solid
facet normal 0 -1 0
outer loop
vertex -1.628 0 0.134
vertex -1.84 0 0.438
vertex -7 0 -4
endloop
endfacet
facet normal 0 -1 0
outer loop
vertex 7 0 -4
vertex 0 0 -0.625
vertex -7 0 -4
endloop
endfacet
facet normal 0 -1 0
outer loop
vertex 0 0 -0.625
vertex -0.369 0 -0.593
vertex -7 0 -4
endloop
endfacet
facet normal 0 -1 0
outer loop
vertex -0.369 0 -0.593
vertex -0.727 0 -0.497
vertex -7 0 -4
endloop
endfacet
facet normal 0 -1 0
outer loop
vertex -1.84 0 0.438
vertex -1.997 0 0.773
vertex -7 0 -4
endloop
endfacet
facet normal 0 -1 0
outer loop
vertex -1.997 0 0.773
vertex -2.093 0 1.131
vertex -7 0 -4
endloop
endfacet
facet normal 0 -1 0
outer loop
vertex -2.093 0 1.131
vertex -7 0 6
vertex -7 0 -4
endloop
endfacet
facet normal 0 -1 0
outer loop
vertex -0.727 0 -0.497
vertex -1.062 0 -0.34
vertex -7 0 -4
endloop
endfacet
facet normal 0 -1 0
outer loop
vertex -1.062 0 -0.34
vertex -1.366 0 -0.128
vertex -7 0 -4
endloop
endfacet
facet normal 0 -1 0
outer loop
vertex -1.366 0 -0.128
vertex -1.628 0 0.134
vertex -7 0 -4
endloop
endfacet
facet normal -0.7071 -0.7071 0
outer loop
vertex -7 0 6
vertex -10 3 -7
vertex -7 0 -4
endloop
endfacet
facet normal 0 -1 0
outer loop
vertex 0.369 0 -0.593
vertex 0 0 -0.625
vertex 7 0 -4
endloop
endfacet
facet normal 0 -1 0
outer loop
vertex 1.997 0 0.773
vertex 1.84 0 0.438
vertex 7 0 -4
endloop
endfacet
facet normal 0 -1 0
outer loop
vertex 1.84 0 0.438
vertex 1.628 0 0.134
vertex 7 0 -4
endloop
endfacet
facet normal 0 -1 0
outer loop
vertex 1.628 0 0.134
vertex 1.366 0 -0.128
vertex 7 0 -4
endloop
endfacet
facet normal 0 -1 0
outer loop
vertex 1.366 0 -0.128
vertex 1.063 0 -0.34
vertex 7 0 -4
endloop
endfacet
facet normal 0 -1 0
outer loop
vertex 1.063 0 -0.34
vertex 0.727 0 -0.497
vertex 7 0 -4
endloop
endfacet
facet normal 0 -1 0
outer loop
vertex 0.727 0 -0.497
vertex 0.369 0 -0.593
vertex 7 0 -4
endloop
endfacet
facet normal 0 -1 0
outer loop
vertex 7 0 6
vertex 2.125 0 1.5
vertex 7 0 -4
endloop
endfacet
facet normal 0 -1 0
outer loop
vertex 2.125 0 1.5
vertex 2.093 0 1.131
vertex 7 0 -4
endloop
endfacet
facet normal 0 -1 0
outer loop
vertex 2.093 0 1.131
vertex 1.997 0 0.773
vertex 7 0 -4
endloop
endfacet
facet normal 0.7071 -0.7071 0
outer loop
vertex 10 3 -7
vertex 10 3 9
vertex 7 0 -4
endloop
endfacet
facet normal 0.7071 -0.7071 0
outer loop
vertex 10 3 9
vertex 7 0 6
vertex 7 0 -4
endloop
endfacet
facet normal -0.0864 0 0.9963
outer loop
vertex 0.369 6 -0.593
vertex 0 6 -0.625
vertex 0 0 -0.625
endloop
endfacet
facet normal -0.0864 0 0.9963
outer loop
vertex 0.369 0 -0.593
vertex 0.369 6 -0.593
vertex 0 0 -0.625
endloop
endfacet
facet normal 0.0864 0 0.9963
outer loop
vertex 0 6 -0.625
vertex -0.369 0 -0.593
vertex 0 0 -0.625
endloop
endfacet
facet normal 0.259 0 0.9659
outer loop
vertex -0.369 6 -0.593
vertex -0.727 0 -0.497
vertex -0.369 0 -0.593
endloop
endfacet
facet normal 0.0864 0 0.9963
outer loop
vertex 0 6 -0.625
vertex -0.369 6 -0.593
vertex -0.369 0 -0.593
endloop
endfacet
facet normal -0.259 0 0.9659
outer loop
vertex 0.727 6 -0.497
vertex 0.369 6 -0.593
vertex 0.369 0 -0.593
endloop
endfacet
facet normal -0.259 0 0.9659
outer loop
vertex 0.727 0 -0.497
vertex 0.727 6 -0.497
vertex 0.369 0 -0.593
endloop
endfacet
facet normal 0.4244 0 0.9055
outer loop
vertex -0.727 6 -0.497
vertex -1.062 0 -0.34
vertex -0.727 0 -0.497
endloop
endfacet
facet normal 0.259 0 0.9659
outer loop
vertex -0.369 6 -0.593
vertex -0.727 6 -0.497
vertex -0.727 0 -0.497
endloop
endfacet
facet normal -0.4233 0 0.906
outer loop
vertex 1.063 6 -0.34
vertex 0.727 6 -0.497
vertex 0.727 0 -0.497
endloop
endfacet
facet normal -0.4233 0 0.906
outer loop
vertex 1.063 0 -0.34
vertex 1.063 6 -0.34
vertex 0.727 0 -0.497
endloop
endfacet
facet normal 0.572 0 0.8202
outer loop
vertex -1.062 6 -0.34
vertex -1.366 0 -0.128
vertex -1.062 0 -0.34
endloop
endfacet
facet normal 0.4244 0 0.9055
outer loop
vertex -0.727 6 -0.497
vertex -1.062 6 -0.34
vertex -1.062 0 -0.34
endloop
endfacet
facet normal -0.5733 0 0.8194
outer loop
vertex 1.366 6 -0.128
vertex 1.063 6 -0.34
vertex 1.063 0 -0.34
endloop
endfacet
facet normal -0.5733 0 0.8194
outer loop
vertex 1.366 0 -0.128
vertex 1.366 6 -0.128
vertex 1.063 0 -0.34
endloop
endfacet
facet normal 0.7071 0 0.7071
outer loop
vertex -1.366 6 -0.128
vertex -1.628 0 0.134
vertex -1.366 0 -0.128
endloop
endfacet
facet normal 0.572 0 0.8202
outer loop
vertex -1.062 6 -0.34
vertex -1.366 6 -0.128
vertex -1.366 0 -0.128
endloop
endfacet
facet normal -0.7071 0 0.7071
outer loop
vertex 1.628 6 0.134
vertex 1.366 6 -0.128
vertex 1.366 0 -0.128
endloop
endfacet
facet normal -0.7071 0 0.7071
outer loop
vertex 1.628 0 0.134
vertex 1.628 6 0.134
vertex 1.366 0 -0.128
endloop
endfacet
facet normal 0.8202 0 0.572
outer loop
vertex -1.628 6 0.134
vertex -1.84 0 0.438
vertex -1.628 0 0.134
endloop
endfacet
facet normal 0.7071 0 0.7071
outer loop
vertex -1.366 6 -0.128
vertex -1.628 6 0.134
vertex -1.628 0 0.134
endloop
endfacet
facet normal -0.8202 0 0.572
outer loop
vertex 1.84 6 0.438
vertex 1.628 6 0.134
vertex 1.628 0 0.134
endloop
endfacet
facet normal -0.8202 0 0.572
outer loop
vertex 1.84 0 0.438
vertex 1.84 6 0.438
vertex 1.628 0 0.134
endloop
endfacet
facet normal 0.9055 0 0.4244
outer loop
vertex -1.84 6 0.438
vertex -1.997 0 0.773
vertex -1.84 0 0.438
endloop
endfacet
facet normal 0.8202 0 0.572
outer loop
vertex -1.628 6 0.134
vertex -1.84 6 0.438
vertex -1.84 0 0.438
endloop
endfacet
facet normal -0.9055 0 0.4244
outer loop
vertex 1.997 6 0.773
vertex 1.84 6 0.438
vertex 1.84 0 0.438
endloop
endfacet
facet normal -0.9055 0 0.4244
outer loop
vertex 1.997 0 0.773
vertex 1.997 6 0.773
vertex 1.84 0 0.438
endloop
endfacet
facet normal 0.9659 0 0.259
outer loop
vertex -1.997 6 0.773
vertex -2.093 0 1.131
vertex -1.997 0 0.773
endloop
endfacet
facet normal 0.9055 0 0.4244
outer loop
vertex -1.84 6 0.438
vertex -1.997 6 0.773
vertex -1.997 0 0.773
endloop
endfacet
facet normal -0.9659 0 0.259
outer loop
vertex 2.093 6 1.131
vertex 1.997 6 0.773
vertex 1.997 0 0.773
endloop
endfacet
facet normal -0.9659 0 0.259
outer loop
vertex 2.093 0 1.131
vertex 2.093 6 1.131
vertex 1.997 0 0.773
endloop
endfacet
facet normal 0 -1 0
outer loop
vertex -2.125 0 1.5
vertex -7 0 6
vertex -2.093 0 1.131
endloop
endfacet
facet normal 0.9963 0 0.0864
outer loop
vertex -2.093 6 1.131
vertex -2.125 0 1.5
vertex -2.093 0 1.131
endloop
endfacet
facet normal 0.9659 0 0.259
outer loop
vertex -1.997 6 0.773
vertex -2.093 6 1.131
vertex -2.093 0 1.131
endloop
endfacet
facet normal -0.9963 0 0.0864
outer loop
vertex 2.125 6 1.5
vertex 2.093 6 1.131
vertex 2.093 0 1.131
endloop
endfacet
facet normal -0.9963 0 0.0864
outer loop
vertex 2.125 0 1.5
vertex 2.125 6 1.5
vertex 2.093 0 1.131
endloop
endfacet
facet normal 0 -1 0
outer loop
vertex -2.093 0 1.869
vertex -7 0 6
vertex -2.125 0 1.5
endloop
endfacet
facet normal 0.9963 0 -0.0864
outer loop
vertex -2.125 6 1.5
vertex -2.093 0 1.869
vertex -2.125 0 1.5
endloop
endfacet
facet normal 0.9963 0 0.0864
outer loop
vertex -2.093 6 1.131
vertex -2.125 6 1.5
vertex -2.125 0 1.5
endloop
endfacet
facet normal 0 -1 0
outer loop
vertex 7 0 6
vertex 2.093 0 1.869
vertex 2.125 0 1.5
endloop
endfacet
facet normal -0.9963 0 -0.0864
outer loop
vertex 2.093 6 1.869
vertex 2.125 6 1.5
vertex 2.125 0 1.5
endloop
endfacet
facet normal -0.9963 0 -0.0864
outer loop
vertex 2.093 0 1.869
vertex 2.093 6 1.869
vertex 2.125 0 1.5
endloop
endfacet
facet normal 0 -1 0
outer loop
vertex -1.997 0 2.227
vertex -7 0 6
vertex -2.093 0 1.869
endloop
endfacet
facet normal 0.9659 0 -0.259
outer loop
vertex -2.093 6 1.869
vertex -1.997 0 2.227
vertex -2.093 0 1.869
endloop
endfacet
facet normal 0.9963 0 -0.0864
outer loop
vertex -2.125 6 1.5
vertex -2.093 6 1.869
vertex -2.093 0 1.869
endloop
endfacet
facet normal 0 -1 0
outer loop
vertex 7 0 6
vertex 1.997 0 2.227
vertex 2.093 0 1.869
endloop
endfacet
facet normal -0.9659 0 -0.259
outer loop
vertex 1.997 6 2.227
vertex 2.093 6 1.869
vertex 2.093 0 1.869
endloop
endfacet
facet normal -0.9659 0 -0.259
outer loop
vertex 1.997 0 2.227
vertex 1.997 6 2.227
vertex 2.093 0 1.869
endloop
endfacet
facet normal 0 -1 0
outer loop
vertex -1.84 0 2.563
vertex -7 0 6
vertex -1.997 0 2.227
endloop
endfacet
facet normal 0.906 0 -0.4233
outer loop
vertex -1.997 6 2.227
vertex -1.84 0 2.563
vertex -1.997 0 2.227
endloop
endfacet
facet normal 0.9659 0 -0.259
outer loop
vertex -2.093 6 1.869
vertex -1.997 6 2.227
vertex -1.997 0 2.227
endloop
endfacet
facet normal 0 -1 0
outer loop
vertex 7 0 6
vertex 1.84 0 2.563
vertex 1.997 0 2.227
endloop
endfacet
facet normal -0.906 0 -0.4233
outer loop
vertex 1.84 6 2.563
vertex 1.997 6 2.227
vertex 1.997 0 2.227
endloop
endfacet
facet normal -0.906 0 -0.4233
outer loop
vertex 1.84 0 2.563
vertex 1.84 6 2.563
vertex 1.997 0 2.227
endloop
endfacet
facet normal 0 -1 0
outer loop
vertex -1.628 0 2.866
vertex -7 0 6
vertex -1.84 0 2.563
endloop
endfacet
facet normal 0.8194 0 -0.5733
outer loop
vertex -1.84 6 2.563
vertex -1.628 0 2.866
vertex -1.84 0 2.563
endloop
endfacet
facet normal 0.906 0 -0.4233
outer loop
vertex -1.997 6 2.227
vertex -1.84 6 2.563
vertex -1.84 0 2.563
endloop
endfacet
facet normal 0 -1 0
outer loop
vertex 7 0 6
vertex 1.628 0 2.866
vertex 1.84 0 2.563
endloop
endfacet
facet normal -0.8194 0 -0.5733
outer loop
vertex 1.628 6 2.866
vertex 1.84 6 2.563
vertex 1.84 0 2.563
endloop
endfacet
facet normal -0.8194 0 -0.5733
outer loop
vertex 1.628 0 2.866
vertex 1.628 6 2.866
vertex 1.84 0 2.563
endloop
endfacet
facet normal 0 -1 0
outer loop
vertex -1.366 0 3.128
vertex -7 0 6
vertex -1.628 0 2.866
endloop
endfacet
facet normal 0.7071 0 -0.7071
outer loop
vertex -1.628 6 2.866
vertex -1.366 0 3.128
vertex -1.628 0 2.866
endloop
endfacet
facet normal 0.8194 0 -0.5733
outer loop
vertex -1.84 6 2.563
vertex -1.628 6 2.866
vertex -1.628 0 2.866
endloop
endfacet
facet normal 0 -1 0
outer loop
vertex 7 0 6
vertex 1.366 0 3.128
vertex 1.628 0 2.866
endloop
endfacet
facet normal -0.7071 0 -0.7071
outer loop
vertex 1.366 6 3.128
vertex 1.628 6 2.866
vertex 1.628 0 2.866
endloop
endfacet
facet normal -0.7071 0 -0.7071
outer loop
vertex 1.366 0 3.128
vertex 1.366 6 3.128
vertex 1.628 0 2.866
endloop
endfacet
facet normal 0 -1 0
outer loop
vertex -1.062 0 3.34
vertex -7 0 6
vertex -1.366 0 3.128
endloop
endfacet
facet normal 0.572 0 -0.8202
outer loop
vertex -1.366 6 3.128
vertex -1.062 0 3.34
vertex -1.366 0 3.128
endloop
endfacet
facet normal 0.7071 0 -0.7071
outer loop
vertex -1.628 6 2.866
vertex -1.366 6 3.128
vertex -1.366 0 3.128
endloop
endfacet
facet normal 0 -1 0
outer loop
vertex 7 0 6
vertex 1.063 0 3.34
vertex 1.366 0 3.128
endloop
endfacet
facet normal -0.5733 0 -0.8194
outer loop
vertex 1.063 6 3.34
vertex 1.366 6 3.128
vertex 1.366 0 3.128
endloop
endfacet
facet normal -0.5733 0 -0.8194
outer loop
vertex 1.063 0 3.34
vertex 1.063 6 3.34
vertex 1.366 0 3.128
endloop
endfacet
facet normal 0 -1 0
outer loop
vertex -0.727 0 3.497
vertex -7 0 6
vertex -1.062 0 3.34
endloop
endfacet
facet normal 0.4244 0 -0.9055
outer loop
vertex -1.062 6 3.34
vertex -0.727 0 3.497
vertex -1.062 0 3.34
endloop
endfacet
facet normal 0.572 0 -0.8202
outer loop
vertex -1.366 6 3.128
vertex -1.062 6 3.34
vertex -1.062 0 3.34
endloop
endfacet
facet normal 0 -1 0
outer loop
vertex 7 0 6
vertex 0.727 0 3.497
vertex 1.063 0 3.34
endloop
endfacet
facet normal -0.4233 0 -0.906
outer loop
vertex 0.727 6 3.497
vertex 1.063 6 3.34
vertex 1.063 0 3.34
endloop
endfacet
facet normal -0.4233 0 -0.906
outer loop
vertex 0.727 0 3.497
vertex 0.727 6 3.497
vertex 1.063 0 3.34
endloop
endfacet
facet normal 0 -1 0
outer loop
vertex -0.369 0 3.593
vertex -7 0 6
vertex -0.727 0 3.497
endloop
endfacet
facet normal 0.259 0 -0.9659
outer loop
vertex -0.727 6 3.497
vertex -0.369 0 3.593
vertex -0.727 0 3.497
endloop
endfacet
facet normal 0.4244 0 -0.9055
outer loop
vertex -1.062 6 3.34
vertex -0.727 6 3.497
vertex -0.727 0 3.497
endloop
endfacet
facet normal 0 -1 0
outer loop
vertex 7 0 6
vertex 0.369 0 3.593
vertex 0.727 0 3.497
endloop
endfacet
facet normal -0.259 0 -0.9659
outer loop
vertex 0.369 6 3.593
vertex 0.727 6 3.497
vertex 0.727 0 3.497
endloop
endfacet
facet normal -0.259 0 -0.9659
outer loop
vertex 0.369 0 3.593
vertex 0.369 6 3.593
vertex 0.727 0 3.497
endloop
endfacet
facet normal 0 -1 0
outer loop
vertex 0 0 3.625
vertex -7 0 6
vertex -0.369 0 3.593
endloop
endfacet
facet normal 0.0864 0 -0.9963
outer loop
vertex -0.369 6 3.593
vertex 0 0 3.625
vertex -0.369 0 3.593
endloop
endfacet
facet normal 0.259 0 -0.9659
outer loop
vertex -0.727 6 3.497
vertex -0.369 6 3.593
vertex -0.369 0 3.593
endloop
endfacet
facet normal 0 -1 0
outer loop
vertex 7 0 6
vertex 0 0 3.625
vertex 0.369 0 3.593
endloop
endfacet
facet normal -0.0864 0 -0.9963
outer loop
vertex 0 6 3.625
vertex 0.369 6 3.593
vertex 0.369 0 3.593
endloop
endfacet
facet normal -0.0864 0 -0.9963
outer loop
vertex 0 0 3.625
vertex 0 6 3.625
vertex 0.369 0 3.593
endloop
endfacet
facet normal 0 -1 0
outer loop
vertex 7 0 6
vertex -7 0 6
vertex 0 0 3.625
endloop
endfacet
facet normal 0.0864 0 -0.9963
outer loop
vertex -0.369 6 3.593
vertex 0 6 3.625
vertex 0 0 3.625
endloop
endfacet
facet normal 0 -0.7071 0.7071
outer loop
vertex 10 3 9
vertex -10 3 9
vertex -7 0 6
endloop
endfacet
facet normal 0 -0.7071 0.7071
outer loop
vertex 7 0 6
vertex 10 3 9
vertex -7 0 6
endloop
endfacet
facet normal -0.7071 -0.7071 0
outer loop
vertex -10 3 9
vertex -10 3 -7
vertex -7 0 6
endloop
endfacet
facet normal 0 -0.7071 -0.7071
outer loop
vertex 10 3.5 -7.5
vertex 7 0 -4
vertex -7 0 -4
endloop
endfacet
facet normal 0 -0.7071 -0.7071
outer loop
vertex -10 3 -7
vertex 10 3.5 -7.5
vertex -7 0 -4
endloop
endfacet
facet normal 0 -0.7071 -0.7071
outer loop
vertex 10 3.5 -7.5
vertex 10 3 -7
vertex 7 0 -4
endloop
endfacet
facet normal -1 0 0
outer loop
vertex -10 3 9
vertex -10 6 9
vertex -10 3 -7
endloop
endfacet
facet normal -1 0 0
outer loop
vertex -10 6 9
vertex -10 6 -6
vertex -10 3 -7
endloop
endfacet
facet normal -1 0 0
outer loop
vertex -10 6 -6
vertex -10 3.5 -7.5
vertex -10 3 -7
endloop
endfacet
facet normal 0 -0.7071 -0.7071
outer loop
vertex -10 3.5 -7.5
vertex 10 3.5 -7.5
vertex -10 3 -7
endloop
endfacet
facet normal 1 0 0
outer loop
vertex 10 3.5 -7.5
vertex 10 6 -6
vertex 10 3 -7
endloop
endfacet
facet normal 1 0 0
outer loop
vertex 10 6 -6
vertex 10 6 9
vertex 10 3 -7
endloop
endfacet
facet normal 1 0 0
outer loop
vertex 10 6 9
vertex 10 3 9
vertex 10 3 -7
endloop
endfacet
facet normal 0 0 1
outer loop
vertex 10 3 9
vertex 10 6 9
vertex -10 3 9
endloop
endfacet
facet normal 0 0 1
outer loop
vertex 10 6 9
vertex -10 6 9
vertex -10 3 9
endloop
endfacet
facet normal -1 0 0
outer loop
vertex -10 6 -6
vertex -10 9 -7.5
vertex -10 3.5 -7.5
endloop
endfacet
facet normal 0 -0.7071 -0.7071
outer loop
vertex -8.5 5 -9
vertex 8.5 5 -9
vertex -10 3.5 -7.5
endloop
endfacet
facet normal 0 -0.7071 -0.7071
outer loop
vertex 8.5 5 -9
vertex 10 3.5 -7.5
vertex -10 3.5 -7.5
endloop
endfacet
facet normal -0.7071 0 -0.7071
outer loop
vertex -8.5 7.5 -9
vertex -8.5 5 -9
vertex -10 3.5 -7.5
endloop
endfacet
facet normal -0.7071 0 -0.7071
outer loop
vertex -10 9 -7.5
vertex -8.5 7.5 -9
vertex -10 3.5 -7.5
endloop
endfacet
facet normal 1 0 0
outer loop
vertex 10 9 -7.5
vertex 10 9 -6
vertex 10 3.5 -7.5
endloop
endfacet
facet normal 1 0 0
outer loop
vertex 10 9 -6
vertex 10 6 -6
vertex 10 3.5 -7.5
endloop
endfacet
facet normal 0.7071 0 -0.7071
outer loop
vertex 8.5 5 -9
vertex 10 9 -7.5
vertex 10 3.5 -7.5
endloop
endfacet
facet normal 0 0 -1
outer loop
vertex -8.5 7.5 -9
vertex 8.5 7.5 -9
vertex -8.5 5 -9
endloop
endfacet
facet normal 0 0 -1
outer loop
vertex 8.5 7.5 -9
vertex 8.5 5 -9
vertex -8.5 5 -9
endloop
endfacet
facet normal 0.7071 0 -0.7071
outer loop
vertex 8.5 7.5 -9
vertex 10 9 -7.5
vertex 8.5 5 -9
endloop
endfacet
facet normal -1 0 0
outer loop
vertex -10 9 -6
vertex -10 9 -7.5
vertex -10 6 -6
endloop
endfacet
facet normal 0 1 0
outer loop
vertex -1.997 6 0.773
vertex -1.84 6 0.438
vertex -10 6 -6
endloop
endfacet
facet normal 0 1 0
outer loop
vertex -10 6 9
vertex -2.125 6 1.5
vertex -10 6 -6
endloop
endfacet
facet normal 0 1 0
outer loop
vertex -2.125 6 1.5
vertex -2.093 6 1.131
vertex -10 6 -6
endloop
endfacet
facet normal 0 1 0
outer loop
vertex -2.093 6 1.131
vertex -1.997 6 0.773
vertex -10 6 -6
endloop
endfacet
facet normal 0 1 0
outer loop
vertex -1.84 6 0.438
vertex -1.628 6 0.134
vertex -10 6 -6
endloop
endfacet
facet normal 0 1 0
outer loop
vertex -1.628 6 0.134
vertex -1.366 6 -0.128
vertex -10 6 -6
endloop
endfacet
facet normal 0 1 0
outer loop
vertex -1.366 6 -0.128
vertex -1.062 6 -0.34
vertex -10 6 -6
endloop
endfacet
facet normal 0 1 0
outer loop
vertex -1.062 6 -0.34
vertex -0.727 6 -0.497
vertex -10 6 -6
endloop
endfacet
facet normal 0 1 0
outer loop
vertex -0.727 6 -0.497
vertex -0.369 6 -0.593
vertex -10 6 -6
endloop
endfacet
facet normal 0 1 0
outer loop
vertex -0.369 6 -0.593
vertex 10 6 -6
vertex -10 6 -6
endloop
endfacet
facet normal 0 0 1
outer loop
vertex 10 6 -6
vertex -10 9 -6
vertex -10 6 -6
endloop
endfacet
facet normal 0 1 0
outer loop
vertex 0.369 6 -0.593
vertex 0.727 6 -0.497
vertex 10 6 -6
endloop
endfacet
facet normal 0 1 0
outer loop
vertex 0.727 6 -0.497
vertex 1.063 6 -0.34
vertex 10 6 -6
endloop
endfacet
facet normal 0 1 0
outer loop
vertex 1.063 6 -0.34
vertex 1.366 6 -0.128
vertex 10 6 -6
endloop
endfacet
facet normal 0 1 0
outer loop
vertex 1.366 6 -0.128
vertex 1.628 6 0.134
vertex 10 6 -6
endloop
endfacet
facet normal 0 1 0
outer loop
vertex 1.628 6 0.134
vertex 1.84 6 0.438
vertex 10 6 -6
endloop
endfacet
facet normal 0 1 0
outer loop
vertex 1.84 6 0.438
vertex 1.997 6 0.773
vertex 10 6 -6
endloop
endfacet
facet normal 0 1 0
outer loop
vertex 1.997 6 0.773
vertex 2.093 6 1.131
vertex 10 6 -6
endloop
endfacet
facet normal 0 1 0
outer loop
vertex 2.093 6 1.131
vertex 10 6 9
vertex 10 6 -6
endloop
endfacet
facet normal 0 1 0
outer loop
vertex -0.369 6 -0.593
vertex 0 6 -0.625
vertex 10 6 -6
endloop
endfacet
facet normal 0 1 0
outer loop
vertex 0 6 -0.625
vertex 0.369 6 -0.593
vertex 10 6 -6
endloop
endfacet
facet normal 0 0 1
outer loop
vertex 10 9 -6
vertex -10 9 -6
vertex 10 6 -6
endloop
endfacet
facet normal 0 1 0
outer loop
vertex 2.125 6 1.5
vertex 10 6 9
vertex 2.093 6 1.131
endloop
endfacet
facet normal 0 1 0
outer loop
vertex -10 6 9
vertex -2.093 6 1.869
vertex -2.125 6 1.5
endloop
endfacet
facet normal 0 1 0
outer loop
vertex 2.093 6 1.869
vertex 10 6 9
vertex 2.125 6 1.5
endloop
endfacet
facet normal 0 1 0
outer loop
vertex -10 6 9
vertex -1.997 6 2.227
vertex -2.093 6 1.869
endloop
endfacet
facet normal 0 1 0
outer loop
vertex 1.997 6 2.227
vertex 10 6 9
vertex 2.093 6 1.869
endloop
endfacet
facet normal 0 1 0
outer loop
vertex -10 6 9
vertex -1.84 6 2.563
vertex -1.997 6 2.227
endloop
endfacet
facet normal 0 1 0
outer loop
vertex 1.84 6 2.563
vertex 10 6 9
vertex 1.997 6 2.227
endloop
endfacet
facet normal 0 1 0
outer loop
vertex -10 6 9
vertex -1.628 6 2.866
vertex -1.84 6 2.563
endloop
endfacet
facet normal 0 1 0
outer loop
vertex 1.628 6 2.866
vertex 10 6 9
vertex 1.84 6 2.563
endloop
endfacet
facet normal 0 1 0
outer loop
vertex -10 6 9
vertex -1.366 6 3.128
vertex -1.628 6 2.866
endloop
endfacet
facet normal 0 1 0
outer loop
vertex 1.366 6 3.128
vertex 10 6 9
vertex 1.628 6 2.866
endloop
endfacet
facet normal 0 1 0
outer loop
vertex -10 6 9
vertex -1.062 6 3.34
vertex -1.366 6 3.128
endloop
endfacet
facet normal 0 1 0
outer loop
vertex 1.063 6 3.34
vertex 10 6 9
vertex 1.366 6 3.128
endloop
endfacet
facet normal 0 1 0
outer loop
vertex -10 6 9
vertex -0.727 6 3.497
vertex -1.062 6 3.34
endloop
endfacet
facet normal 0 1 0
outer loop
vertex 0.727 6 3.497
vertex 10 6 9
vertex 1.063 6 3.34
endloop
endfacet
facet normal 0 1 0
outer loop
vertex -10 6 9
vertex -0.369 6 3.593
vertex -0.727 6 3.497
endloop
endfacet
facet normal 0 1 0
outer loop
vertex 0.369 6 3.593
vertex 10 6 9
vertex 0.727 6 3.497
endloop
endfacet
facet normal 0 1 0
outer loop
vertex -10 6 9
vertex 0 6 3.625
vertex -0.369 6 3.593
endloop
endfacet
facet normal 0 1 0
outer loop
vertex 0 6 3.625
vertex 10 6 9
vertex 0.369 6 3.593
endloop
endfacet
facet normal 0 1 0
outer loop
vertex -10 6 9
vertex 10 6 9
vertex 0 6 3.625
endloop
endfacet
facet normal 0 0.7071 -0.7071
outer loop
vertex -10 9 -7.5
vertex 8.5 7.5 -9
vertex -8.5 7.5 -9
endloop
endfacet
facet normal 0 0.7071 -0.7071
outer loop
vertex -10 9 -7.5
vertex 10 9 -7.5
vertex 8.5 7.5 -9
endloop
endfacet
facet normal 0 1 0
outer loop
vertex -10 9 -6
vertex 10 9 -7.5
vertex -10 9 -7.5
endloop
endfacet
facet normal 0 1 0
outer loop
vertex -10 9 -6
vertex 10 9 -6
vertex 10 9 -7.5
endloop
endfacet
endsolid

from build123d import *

# Parameters (mm, degrees)
SKETCH1_W               = 20
SKETCH1_H               = 18
BOSS_EXTRUDE1_DEPTH     = 6
SKETCH2_W               = 20
SKETCH2_H               = 3
BOSS_EXTRUDE2_DEPTH     = 3
SKETCH3_R               = 2.125
CUT_EXTRUDE1_DEPTH      = 1
CUT_EXTRUDE1_DEPTH_BACK = 10
CHAMFER1_SIZE           = 3
CHAMFER2_SIZE           = 5
CHAMFER3_SIZE           = 1.5


with BuildPart() as part:
    # Sketch1 → Boss-Extrude1 (new body)
    with BuildSketch(Plane(origin=(0, 0, 0), x_dir=(1, 0, 0), z_dir=(0, 1, 0))):
        Rectangle(SKETCH1_W, SKETCH1_H)
    extrude(amount=BOSS_EXTRUDE1_DEPTH)

    # Sketch2 → Boss-Extrude2 (add)
    with BuildSketch(Plane(origin=(0, 6, 0), x_dir=(1, 0, 0), z_dir=(0, 1, 0))):
        with Locations((0, 7.5)):
            Rectangle(SKETCH2_W, SKETCH2_H)
    extrude(amount=BOSS_EXTRUDE2_DEPTH)

    # Sketch3 → Cut-Extrude1 (cut, two sides)
    with BuildSketch(Plane.XZ) as cut_extrude1_sk:
        with Locations((0, 1.5)):
            Circle(SKETCH3_R)
    extrude(amount=CUT_EXTRUDE1_DEPTH, mode=Mode.SUBTRACT)
    extrude(cut_extrude1_sk.sketch, amount=-CUT_EXTRUDE1_DEPTH_BACK, mode=Mode.SUBTRACT)

    # Chamfer1
    chamfer1_edges = [part.edges().sort_by_distance(p)[0] for p in [
        (10, 0, 0),
        (0, 0, 9),
        (-10, 0, 0),
    ]]
    chamfer(chamfer1_edges, length=CHAMFER1_SIZE)

    # Chamfer2
    chamfer2_edges = [part.edges().sort_by_distance(p)[0] for p in [
        (0, 0, -9),
    ]]
    chamfer(chamfer2_edges, length=CHAMFER2_SIZE)

    # Chamfer3
    chamfer3_edges = [part.edges().sort_by_distance(p)[0] for p in [
        (0, 9, -9),
        (-10, 7, -9),
        (10, 7, -9),
    ]]
    chamfer(chamfer3_edges, length=CHAMFER3_SIZE)


solid = part.part
